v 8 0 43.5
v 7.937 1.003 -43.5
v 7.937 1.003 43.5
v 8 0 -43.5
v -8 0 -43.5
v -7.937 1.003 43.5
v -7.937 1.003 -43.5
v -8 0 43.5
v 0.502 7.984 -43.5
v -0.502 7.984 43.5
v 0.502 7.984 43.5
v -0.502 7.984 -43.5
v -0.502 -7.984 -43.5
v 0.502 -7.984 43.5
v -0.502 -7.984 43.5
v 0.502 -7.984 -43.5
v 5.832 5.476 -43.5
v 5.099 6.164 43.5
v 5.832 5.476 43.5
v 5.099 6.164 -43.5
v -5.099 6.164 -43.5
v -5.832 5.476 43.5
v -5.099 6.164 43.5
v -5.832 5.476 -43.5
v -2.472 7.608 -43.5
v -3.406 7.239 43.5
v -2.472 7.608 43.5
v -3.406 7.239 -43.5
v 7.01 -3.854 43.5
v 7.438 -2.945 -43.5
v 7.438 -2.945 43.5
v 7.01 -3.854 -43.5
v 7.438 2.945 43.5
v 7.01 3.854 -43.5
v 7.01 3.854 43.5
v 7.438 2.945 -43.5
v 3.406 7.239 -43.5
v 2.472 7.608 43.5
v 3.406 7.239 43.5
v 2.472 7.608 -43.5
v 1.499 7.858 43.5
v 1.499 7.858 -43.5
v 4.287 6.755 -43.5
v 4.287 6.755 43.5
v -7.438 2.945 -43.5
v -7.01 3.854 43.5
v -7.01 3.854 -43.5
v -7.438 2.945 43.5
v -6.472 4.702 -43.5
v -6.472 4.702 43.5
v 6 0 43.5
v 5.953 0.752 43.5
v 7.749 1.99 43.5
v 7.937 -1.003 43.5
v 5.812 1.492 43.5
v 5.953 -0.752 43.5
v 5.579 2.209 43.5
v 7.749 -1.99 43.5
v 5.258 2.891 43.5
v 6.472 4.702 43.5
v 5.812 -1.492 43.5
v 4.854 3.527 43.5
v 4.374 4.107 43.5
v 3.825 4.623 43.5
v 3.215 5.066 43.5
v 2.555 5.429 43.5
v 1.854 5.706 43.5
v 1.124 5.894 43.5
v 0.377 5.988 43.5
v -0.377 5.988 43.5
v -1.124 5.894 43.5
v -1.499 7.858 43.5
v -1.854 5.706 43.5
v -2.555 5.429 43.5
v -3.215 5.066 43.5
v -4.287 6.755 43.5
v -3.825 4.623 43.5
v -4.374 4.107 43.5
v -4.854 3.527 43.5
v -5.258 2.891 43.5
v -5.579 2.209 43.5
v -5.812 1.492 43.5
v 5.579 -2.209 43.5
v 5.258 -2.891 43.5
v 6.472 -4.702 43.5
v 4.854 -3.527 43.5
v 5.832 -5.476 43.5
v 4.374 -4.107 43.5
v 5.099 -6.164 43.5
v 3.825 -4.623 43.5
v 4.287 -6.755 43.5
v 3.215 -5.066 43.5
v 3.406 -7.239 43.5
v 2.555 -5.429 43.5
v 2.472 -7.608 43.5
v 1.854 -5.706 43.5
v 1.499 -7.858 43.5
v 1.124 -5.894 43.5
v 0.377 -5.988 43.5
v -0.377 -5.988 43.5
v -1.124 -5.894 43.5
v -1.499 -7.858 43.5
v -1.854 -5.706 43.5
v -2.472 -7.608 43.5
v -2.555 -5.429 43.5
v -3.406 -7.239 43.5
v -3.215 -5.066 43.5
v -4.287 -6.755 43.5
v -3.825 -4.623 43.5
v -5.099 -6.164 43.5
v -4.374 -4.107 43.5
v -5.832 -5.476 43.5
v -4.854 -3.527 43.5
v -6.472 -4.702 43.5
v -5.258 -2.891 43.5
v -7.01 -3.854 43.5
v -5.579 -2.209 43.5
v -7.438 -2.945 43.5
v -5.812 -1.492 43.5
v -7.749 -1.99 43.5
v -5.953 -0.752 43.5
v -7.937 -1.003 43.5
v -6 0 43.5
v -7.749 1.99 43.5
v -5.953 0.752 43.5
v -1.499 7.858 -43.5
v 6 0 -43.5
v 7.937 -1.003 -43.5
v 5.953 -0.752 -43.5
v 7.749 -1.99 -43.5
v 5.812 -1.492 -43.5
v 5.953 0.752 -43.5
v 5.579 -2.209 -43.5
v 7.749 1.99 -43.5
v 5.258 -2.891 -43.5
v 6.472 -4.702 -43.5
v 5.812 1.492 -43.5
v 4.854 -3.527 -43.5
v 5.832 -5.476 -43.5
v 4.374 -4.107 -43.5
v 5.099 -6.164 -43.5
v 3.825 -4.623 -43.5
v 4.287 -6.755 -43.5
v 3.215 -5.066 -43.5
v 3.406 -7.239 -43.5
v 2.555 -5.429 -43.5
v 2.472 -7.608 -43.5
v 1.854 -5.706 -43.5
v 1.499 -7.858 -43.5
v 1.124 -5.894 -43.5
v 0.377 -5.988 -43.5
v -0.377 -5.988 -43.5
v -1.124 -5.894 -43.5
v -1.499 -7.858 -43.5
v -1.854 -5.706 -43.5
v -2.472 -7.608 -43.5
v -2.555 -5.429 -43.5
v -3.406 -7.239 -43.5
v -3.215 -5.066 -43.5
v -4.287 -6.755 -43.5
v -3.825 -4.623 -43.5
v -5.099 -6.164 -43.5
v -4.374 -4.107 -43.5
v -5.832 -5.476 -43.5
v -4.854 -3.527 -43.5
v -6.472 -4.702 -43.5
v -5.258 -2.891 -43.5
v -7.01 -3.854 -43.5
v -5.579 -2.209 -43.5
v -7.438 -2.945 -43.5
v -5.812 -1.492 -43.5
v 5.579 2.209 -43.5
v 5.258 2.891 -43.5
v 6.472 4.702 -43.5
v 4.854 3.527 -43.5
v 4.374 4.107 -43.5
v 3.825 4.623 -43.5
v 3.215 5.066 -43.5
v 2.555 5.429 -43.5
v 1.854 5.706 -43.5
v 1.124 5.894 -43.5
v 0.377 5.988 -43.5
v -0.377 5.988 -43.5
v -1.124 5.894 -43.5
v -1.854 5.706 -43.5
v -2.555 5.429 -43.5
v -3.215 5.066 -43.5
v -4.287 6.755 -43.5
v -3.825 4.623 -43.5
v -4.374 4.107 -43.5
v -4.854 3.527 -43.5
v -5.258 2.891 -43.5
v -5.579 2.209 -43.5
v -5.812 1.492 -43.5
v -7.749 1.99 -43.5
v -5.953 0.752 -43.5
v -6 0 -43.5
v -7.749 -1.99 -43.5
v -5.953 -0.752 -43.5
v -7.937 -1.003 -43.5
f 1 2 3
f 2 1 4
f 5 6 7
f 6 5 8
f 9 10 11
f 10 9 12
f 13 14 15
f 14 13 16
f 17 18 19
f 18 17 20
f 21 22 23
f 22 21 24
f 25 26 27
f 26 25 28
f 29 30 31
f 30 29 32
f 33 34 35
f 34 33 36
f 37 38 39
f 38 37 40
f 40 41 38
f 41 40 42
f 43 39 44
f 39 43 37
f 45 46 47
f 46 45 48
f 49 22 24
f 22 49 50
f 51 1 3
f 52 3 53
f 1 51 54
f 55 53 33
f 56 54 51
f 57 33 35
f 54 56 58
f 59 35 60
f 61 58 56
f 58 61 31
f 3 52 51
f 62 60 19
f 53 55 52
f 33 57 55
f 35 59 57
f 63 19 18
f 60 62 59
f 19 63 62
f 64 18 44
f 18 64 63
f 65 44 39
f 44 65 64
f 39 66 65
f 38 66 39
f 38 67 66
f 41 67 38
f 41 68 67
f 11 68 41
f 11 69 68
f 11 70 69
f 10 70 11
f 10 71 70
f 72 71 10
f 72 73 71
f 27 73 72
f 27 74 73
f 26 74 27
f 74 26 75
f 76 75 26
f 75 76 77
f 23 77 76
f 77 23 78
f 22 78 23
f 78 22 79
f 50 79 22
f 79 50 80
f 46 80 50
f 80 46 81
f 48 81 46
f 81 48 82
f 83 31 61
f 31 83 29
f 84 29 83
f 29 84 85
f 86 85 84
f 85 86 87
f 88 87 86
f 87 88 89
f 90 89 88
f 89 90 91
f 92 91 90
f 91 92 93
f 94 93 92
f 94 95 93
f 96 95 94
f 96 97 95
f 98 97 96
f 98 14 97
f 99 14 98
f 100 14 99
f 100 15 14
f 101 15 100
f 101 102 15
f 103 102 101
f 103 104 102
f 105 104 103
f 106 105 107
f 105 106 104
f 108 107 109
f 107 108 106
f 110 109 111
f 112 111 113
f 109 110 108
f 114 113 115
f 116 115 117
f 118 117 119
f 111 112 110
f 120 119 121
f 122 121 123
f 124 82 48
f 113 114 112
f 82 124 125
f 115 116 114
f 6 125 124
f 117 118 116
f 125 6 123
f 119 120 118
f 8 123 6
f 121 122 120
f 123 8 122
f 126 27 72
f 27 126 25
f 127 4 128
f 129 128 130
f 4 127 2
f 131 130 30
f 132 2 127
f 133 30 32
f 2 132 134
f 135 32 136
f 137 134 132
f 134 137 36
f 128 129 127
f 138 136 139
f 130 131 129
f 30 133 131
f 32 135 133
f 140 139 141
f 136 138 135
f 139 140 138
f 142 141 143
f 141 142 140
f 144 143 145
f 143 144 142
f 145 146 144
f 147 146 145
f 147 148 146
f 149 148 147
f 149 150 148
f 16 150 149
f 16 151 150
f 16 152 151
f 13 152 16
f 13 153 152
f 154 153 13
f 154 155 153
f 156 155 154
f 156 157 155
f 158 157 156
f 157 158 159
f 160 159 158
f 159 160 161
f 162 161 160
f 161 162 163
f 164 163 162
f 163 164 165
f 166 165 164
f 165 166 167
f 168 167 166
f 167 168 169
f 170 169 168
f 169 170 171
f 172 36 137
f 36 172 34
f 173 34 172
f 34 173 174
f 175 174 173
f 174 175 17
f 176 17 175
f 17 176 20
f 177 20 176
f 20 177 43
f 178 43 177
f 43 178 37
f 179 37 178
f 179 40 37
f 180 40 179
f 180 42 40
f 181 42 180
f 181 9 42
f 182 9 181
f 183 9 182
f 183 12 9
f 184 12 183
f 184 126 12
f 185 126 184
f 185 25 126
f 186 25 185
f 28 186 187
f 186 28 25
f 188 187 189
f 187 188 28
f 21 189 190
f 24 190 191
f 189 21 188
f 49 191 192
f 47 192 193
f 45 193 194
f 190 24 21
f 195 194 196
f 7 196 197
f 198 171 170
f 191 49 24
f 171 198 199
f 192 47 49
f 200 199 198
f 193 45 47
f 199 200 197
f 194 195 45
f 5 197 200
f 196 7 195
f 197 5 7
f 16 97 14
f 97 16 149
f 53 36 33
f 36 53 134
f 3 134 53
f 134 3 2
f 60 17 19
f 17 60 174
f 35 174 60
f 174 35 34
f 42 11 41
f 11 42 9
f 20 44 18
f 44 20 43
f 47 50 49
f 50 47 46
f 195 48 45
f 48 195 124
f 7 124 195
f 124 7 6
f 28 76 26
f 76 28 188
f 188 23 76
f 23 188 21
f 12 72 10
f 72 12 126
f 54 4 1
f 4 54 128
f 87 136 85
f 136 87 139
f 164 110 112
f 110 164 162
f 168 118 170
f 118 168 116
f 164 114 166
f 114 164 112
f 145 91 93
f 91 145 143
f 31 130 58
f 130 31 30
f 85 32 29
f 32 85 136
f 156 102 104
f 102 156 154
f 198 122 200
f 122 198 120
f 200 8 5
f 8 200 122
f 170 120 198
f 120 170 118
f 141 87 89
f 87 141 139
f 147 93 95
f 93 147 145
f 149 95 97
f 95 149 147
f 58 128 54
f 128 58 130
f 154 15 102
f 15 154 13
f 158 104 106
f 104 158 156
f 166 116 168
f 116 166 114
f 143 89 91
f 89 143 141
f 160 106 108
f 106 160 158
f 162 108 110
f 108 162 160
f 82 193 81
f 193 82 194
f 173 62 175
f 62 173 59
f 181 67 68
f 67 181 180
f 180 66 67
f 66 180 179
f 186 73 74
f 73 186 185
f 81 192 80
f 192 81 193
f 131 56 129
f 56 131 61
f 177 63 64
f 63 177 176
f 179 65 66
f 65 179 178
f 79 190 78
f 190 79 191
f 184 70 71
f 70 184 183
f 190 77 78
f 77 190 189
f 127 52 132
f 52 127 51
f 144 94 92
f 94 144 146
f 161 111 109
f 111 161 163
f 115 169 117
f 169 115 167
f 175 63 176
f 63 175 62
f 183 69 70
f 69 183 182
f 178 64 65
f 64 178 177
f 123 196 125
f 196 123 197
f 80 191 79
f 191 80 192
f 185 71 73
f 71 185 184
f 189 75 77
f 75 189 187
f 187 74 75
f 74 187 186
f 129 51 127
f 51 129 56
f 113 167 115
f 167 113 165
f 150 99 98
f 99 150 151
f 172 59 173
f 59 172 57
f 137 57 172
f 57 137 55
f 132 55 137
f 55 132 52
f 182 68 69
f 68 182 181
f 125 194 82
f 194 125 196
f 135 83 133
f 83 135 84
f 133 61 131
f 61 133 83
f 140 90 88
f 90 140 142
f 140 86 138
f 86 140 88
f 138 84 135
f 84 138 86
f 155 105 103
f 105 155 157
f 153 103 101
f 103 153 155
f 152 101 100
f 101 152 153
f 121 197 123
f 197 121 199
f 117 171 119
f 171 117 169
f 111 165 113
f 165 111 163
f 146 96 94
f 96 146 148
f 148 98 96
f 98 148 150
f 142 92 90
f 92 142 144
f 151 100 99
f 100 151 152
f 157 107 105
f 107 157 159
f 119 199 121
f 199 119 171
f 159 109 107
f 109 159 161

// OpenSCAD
$fn = 50;


difference() {
	union() {
		translate(v = [0, 0, -43.5000000000]) {
			cylinder(h = 87, r = 8.0000000000);
		}
	}
	union() {
		translate(v = [0, 0, -100.0000000000]) {
			cylinder(h = 200, r = 6);
		}
	}
}
